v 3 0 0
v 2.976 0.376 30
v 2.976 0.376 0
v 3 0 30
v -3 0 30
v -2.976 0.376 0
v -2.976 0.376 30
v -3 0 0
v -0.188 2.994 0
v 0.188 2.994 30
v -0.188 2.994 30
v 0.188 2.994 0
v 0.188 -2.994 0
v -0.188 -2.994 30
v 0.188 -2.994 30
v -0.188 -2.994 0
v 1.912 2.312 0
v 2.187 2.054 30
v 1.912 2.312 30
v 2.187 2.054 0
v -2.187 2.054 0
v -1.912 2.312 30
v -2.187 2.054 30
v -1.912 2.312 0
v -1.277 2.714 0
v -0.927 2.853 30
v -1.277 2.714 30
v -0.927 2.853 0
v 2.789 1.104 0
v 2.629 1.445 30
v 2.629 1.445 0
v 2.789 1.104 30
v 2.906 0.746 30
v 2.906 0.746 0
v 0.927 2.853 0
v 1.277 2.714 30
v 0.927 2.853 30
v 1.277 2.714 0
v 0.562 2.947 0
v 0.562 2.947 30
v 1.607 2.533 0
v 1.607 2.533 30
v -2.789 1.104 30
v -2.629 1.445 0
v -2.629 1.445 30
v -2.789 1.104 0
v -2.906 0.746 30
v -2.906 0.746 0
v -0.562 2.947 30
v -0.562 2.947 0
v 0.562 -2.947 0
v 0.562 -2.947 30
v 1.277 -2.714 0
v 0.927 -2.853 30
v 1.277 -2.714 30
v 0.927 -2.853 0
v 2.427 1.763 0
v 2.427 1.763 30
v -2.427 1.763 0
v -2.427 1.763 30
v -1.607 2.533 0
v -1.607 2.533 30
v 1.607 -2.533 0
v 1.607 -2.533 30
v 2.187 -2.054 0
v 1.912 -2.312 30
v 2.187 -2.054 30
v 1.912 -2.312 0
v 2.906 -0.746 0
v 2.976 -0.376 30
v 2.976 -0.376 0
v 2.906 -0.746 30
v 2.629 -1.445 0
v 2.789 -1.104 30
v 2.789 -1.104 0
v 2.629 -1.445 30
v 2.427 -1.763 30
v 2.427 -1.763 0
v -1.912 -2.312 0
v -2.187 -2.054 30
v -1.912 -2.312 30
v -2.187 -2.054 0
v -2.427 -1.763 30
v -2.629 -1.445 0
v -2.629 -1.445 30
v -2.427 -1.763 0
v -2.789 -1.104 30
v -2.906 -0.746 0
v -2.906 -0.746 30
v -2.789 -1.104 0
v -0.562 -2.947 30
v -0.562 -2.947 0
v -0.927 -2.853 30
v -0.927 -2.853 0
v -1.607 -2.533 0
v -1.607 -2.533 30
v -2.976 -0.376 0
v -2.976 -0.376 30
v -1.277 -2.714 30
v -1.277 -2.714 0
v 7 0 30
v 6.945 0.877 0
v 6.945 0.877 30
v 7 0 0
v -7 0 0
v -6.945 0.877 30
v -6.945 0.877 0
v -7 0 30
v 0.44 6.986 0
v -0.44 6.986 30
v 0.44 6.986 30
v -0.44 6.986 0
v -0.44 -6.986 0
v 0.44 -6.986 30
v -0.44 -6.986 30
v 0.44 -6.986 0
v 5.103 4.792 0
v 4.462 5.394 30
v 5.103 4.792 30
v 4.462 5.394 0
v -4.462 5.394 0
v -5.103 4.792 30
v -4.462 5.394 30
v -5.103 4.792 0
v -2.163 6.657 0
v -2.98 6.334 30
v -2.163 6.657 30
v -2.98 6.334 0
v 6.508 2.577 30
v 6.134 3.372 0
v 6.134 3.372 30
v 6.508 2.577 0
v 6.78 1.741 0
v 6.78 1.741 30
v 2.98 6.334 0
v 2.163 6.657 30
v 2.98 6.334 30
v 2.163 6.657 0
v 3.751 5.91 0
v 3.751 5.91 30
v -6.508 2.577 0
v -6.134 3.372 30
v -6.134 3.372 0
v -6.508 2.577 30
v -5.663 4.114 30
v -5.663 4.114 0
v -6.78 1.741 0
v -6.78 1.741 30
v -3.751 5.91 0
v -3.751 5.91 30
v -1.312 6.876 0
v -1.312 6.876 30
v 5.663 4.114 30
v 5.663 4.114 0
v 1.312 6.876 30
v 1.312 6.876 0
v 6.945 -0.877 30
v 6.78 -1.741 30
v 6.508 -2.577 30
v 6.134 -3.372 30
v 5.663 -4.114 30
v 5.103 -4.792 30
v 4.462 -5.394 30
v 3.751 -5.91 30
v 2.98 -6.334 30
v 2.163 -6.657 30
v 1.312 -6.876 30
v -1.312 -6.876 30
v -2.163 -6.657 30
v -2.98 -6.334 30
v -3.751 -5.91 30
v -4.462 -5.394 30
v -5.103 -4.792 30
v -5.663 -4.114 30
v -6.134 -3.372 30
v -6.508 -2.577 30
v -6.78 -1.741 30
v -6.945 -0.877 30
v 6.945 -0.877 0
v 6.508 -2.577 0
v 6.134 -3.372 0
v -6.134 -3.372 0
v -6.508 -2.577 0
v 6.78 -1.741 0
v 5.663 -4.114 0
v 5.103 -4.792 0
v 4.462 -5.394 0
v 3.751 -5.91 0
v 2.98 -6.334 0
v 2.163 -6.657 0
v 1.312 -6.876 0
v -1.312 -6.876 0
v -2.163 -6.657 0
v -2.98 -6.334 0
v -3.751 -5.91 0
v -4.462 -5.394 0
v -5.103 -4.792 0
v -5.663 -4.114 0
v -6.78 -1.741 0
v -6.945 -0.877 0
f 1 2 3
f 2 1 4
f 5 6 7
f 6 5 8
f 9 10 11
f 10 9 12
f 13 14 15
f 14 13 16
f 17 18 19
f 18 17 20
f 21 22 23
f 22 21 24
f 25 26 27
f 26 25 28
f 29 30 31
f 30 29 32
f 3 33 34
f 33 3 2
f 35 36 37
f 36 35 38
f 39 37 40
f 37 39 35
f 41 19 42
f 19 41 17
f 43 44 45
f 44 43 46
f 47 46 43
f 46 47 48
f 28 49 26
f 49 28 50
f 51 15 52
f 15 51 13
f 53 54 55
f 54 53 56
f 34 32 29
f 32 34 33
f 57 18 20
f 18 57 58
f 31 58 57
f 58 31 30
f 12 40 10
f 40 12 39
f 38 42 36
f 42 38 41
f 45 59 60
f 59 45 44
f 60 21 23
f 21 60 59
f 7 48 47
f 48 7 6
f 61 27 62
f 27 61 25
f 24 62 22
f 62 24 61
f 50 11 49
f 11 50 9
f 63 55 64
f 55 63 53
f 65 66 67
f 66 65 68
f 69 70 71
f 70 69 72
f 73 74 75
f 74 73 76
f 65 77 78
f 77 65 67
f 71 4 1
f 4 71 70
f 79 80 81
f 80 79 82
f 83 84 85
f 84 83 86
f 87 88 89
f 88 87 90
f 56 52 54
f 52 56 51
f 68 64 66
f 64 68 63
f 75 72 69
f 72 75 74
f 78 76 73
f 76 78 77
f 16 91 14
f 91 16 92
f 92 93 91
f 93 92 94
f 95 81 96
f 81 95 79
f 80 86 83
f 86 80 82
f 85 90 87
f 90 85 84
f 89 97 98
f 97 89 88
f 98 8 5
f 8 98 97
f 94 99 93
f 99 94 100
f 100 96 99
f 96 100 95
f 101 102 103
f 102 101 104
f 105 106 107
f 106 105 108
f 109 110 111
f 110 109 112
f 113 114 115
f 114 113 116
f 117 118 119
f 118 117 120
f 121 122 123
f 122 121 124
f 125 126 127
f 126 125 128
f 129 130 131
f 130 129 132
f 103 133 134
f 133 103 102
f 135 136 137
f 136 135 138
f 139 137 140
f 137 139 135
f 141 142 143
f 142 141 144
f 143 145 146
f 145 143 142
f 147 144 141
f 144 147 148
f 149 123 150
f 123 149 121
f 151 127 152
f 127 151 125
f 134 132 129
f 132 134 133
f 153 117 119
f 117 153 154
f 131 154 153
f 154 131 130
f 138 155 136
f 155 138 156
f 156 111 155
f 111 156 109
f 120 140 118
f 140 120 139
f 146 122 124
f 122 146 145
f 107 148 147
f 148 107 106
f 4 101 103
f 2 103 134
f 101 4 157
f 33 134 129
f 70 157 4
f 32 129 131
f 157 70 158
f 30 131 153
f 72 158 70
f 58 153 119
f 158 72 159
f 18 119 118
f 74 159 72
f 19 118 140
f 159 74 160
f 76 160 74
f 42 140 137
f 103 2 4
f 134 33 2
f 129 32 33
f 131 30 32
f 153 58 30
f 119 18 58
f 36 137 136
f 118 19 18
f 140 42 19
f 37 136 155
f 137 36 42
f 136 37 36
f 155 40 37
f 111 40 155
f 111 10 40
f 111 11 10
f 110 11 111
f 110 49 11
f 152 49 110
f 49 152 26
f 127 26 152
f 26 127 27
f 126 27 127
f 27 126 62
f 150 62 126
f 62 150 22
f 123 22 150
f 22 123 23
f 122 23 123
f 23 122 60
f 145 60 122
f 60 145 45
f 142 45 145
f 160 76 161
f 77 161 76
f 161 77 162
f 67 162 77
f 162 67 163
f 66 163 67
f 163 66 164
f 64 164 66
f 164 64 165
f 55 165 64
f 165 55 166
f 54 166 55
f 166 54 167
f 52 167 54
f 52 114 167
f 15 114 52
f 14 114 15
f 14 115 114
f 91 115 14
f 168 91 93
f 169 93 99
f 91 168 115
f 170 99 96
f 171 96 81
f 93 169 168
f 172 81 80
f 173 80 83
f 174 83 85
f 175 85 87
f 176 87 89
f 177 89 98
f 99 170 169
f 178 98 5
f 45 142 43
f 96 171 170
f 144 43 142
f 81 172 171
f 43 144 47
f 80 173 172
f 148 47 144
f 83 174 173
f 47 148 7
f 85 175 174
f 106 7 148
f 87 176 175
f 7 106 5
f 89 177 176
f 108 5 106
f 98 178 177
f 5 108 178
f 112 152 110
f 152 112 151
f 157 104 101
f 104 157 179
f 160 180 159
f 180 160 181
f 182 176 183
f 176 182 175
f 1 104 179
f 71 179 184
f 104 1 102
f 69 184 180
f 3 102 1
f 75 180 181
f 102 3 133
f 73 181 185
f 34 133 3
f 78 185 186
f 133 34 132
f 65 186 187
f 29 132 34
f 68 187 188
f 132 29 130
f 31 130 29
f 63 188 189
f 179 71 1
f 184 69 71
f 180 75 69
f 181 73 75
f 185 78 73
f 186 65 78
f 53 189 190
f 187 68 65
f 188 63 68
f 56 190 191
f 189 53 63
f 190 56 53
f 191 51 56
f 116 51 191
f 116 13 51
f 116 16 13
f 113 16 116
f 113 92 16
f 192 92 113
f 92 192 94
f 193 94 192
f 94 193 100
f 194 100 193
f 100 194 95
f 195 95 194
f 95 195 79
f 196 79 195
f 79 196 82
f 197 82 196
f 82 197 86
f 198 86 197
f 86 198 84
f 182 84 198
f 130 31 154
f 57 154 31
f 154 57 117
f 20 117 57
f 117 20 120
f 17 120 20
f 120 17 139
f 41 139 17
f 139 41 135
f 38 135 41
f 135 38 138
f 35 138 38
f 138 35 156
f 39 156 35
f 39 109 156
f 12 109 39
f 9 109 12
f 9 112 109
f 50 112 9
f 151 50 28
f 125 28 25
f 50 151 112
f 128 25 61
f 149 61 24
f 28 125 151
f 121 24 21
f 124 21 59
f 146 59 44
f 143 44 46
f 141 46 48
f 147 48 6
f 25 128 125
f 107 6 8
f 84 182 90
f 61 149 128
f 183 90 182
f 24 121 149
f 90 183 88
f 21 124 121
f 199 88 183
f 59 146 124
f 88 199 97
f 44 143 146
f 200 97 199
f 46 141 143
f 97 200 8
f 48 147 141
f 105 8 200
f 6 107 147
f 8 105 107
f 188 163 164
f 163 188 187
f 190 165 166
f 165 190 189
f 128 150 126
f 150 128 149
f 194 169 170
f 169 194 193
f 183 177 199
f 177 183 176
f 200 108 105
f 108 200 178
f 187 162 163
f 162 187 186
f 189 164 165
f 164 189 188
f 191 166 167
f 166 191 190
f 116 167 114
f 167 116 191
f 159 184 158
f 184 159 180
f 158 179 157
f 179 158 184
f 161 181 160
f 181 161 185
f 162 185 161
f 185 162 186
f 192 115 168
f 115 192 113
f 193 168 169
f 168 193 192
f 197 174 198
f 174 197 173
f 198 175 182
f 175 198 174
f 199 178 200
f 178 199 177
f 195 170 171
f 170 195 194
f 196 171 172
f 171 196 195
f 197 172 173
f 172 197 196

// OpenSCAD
$fn = 50;


difference() {
	union() {
		translate(v = [0, 0, 0]) {
			rotate(a = [0, 0, 0]) {
				cylinder(h = 30, r = 7.0000000000);
			}
		}
	}
	union() {
		translate(v = [0.0000000000, 0.0000000000, 0]) {
			rotate(a = [0, 0, 0]) {
				translate(v = [0, 0, -50]) {
					rotate(a = [0, 0, 0]) {
						cylinder(h = 100, r = 3.0000000000);
					}
				}
			}
		}
		translate(v = [0.0000000000, 0.0000000000, 0]) {
			rotate(a = [0, 0, 0]) {
				translate(v = [0, 0, -50]) {
					rotate(a = [0, 0, 0]) {
						cylinder(h = 100, r = 1.5000000000);
					}
				}
			}
		}
	}
}
